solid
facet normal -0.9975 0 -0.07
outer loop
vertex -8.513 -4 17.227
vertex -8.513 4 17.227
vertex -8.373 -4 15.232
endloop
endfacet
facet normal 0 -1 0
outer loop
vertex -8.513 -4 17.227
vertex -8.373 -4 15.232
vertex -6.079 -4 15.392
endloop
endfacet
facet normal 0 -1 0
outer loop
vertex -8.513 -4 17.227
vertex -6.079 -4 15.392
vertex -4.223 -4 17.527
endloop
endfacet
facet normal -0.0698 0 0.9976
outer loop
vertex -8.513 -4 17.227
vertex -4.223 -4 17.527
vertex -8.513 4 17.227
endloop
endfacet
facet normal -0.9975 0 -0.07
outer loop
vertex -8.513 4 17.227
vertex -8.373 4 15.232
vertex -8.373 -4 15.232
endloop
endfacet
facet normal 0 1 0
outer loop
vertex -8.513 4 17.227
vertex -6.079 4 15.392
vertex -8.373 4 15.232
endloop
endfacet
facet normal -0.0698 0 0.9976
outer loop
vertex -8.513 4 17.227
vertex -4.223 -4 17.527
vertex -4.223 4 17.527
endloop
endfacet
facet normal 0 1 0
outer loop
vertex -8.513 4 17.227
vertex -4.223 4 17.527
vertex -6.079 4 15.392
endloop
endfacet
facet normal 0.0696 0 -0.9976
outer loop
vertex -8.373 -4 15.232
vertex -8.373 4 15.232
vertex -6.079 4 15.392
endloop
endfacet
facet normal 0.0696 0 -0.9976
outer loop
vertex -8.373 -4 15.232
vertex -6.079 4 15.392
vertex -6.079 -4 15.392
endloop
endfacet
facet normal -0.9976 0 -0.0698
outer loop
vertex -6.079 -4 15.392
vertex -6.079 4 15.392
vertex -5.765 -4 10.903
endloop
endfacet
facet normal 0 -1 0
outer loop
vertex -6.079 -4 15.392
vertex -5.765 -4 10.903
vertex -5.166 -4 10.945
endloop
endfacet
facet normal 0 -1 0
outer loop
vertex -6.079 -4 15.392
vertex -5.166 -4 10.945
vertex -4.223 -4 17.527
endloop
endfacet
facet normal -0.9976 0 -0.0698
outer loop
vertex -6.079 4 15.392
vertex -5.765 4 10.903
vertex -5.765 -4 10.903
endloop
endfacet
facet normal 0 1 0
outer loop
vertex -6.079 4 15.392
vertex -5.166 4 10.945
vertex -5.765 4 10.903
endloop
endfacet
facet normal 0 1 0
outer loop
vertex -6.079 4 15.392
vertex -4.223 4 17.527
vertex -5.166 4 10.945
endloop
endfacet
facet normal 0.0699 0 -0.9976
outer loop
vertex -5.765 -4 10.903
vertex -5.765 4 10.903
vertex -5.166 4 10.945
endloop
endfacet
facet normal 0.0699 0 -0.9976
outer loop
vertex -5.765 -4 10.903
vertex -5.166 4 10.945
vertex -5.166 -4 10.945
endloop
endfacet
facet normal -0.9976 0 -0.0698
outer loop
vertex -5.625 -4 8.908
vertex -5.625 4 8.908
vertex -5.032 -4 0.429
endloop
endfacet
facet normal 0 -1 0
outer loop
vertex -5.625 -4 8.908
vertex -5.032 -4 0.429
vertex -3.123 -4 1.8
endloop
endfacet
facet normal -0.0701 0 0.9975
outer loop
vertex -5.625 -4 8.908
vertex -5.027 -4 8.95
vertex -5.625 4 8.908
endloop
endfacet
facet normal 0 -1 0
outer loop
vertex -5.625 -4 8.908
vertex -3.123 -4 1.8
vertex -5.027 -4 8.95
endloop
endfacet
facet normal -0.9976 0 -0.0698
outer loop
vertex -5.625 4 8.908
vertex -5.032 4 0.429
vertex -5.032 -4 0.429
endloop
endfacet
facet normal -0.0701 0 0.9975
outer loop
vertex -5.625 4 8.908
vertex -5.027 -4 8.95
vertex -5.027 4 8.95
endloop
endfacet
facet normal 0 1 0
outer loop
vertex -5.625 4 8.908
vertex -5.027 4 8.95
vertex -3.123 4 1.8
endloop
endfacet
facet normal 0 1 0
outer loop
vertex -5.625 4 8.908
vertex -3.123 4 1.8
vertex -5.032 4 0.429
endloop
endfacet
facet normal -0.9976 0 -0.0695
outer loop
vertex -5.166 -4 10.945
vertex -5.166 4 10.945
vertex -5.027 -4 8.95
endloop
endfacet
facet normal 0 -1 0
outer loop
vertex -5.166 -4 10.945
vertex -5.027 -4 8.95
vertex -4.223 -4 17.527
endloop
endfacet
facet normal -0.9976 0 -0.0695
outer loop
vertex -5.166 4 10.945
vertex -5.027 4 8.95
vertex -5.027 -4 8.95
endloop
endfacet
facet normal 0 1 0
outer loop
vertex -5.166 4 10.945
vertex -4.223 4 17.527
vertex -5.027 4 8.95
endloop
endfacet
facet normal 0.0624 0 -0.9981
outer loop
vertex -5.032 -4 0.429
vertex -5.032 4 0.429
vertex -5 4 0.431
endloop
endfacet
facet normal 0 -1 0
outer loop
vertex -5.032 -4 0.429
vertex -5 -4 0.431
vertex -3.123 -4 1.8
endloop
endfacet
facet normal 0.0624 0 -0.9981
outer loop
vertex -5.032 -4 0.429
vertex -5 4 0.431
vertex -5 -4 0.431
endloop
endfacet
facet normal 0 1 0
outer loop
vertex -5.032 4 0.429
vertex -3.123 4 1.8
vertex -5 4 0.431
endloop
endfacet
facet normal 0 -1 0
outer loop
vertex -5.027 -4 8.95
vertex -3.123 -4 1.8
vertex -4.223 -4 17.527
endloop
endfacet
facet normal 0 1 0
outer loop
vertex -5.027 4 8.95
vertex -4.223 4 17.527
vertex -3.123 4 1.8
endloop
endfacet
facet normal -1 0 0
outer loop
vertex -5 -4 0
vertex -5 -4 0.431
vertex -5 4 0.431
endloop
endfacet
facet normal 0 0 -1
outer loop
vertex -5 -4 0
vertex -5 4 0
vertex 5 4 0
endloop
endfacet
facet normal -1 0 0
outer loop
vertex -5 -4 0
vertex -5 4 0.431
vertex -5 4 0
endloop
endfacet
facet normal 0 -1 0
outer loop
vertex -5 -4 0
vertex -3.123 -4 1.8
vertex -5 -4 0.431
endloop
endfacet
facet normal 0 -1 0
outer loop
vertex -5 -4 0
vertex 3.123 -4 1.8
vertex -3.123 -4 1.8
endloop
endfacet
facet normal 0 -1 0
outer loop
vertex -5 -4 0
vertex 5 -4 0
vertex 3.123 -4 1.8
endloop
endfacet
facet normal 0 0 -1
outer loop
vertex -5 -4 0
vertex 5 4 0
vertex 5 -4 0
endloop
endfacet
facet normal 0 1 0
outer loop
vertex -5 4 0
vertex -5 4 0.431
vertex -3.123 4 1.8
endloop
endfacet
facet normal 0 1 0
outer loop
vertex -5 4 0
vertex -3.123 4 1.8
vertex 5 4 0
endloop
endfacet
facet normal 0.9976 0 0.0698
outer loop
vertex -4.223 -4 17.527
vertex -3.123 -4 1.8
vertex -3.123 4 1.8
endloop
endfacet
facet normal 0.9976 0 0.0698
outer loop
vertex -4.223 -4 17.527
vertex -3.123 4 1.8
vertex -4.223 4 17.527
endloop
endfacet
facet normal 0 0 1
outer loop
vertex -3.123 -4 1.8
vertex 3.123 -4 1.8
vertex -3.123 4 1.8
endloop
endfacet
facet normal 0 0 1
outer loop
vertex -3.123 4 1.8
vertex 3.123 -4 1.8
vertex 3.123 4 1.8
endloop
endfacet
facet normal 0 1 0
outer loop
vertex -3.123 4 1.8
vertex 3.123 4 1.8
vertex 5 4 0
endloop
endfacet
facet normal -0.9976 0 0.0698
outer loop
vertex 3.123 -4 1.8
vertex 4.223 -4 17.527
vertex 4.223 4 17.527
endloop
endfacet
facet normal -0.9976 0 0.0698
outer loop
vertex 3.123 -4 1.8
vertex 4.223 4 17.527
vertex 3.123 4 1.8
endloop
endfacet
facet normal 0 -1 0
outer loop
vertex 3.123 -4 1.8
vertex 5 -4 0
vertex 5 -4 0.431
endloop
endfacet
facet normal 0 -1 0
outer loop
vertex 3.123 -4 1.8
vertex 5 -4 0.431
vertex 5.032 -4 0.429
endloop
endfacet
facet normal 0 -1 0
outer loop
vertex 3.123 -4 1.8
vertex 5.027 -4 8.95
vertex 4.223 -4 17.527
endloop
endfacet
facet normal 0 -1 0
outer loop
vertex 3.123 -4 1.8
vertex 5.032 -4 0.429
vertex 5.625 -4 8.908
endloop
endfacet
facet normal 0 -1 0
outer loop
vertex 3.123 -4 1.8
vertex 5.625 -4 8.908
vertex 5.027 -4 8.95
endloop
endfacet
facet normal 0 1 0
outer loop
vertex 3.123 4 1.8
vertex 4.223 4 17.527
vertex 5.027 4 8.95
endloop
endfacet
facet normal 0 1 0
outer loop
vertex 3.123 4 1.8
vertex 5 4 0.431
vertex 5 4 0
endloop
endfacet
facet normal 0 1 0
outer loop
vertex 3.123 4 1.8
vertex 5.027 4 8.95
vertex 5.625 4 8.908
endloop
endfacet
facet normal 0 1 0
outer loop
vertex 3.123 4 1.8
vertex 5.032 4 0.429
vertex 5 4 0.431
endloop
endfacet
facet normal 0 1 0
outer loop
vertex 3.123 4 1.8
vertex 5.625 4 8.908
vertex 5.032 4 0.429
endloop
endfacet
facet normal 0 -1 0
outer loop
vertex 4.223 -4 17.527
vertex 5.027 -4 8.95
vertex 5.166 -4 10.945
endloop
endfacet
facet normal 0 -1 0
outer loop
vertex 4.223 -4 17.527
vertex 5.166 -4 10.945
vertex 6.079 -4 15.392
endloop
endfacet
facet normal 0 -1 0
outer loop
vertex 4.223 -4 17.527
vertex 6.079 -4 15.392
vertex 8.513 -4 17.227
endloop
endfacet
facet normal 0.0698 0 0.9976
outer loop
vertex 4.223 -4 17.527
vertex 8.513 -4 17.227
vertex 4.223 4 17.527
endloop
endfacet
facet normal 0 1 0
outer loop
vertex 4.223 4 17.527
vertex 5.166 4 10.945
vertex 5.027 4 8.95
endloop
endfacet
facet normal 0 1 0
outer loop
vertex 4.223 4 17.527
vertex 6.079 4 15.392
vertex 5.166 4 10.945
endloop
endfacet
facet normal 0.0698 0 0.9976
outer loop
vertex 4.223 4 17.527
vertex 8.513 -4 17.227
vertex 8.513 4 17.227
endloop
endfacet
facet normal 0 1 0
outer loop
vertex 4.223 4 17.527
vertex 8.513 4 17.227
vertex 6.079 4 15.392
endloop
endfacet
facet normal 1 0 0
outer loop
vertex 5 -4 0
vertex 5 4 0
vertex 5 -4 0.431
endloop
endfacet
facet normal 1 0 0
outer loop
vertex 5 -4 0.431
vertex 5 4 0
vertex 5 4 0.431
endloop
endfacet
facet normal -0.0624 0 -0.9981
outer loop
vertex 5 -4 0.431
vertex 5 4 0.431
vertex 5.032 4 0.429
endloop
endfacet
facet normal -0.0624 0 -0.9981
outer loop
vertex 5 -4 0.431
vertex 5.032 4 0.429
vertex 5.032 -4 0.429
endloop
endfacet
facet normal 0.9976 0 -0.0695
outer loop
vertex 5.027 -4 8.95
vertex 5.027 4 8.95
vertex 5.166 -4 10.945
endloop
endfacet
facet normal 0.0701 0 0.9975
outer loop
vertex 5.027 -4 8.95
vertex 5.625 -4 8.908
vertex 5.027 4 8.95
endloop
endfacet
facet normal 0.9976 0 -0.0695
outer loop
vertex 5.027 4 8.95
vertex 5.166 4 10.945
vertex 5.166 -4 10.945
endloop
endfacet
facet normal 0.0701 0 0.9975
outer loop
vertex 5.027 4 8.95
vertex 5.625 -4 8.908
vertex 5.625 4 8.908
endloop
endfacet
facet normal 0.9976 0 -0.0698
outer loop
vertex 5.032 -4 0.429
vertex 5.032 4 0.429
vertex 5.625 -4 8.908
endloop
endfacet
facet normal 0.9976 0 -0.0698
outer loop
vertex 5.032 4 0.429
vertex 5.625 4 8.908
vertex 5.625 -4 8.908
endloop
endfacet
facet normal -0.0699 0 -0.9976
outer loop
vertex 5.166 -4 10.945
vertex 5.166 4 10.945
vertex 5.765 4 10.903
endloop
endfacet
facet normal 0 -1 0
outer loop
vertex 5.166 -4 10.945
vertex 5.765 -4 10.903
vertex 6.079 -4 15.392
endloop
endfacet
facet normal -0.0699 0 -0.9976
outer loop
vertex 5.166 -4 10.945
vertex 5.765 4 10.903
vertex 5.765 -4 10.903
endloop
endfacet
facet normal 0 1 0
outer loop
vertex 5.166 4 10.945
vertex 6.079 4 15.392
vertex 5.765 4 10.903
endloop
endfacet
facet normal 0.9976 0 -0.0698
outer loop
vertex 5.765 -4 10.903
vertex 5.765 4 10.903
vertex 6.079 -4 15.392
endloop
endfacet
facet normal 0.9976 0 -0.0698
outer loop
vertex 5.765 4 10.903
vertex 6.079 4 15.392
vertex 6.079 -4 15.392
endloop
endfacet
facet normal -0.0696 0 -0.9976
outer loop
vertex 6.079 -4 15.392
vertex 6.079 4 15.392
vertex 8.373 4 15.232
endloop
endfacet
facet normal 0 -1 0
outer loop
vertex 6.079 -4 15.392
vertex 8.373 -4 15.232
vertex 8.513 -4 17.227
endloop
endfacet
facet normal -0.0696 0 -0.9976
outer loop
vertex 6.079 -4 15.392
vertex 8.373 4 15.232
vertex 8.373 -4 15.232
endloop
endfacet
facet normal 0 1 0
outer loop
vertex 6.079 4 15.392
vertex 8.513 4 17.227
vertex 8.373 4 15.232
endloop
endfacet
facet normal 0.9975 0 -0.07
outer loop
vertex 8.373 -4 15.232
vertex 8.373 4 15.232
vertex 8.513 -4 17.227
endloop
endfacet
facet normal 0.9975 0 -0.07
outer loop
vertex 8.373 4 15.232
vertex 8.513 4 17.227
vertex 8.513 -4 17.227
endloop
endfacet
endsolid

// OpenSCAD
translate([0,0,0.9]) cube([10,8,1.8], center = true);

for (i = [1,-1])
{
  translate([i * 4,0,0]) rotate([0,i * 4,0]) translate([0,0,9]) difference()
  {
    union()
    {
      cube([2,8,17], center = true);
      translate([i * 1.2,0,7.5]) cube([4.2,8,2], center = true);
    }
    translate([i * 0.7,0,1]) cube([0.6,8,2], center = true);
  }
}
